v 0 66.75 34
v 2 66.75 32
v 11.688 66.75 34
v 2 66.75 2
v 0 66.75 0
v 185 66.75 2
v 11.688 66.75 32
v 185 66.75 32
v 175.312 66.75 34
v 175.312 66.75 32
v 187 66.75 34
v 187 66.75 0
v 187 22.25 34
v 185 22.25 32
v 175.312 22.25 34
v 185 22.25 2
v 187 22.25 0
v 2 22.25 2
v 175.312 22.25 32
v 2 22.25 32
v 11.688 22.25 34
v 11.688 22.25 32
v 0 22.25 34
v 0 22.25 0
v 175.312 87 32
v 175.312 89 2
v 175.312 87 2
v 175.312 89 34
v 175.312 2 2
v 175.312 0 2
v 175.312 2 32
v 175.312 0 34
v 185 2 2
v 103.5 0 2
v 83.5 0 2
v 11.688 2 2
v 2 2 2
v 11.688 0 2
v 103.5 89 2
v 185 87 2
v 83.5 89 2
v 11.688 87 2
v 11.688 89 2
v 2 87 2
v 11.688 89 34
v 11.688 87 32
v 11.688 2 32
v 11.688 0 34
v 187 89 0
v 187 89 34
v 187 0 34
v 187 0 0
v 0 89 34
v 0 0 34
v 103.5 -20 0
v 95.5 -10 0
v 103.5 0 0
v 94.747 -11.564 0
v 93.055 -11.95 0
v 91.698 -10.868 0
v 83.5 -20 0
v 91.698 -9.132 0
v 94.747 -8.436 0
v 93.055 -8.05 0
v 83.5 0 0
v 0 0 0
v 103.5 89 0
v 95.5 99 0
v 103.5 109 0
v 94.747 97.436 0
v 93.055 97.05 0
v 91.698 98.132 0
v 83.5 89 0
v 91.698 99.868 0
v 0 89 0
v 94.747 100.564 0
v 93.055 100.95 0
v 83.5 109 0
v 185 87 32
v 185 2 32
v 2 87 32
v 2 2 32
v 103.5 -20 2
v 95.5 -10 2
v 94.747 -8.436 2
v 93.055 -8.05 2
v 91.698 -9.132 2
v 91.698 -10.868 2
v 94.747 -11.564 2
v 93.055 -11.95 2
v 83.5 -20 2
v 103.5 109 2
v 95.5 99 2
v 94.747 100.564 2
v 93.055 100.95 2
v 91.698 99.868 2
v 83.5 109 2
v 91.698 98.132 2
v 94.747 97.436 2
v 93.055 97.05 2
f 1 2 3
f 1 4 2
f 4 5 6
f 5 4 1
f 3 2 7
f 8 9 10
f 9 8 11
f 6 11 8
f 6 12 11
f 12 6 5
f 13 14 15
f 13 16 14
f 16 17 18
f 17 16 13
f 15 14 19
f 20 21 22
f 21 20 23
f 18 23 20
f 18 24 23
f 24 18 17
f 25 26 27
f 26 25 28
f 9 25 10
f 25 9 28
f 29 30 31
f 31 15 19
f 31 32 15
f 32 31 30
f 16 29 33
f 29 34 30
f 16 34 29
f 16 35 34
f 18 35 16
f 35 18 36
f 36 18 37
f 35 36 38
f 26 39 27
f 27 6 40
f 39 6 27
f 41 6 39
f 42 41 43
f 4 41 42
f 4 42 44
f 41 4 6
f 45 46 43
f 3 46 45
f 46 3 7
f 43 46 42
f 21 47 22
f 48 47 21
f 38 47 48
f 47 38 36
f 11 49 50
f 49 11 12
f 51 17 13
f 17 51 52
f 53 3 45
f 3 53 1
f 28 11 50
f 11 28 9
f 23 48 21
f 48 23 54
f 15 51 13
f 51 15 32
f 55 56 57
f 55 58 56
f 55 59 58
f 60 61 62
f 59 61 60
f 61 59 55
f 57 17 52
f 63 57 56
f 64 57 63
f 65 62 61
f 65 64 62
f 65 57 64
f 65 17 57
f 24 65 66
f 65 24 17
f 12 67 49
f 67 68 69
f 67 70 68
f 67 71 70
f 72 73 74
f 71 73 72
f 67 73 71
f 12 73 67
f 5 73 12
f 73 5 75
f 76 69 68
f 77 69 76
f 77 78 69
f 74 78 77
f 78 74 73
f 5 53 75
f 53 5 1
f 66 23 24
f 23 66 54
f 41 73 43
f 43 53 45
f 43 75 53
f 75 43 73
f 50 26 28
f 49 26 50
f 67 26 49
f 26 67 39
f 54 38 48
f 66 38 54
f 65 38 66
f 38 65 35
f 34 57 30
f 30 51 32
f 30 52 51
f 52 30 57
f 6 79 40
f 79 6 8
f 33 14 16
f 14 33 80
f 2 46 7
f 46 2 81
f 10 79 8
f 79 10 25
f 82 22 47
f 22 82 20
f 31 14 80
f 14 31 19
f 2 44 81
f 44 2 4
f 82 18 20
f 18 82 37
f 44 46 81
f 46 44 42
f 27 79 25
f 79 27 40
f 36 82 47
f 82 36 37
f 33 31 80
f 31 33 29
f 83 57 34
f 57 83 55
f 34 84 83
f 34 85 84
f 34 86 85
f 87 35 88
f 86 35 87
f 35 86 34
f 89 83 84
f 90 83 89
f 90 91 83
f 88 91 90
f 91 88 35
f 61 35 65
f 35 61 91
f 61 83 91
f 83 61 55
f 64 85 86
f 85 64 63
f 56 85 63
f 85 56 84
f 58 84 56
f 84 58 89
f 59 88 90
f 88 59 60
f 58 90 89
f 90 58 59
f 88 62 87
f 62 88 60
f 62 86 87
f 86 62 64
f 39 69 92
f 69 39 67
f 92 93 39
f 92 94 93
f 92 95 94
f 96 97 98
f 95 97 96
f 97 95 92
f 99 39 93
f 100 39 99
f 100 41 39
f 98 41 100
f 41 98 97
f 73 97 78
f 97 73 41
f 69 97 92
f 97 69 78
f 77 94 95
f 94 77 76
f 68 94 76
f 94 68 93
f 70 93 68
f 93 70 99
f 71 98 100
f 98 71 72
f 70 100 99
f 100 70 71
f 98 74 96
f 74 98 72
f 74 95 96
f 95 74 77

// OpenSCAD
square_monitor_brick_size = [183, 85, 30];
wall_thickness = 2;
bracket_size = 20;

module power_brick_bracket(size) {
  size_with_walls = [for (d = size) d + (wall_thickness * 2)];

  module brick_negative() {
    translate([wall_thickness, wall_thickness, wall_thickness]) {
      cube(size);
    }
  }

  module surround() {
    cube(size_with_walls);
  }

  module intersecting_blocks() {
    translate([-wall_thickness, size_with_walls.y / 4, -wall_thickness]) {
      cube(
        [
          size_with_walls.x + (wall_thickness * 4),
          size_with_walls.y / 2,
          size_with_walls.z + (wall_thickness * 4)
        ]
      );
    }
    x_size_ratio = 16;
    x_begin = (size_with_walls.x - (size_with_walls.x / x_size_ratio) * 2) / size_with_walls.x;
    translate([size_with_walls.x / x_size_ratio, -wall_thickness, wall_thickness]) {
      cube(
        [
          size_with_walls.x * x_begin,
          size_with_walls.y + (wall_thickness * 4),
          size_with_walls.z + (wall_thickness * 4)
        ]
      );
    }
  }

  module brackets(screw_diameter=8) {
    translate([size_with_walls.x / 2 - (bracket_size / 2), -bracket_size, 0]) {
      bracket();
    }
    translate([size_with_walls.x / 2 - (bracket_size / 2), size_with_walls.y, 0]) {
      bracket();
    }
  }

  // module bracket(screw_diameter=8) {
  //   //translate([bracket_size / 2, bracket_size / 2, 0])
  //    difference() {
  //      intersection() {
  //        translate([bracket_size / 2, bracket_size / 2, 0])
  //          //cylinder(wall_thickness, bracket_size / 2, bracket_size / 2);
  //          difference() {
  //            cylinder(wall_thickness, bracket_size / 2, bracket_size / 2);
  //            translate([-(bracket_size / 2), 0, -(wall_thickness / 2)])
  //              cube([bracket_size, bracket_size / 2, wall_thickness * 2]);
  //          }
  //        cube([bracket_size, bracket_size, wall_thickness]);
  //      }
  //      screwhole(bracket_size);
  //    }
  // }

  module bracket(screw_diameter=8) {
     difference() {
       cube([bracket_size, bracket_size, wall_thickness]);
       screwhole(bracket_size);
     }
  }


  module screwhole(screw_diameter=8) {
    translate([bracket_size / 2, bracket_size / 2, 0]) {
      cylinder(wall_thickness * 4, wall_thickness, wall_thickness, center = true);
    }
  }

  module go() {
    difference() {
      difference() {
        surround();
        intersecting_blocks();
      }
      brick_negative();
    }
    brackets(6);
  }

  go();
}

power_brick_bracket(square_monitor_brick_size);
